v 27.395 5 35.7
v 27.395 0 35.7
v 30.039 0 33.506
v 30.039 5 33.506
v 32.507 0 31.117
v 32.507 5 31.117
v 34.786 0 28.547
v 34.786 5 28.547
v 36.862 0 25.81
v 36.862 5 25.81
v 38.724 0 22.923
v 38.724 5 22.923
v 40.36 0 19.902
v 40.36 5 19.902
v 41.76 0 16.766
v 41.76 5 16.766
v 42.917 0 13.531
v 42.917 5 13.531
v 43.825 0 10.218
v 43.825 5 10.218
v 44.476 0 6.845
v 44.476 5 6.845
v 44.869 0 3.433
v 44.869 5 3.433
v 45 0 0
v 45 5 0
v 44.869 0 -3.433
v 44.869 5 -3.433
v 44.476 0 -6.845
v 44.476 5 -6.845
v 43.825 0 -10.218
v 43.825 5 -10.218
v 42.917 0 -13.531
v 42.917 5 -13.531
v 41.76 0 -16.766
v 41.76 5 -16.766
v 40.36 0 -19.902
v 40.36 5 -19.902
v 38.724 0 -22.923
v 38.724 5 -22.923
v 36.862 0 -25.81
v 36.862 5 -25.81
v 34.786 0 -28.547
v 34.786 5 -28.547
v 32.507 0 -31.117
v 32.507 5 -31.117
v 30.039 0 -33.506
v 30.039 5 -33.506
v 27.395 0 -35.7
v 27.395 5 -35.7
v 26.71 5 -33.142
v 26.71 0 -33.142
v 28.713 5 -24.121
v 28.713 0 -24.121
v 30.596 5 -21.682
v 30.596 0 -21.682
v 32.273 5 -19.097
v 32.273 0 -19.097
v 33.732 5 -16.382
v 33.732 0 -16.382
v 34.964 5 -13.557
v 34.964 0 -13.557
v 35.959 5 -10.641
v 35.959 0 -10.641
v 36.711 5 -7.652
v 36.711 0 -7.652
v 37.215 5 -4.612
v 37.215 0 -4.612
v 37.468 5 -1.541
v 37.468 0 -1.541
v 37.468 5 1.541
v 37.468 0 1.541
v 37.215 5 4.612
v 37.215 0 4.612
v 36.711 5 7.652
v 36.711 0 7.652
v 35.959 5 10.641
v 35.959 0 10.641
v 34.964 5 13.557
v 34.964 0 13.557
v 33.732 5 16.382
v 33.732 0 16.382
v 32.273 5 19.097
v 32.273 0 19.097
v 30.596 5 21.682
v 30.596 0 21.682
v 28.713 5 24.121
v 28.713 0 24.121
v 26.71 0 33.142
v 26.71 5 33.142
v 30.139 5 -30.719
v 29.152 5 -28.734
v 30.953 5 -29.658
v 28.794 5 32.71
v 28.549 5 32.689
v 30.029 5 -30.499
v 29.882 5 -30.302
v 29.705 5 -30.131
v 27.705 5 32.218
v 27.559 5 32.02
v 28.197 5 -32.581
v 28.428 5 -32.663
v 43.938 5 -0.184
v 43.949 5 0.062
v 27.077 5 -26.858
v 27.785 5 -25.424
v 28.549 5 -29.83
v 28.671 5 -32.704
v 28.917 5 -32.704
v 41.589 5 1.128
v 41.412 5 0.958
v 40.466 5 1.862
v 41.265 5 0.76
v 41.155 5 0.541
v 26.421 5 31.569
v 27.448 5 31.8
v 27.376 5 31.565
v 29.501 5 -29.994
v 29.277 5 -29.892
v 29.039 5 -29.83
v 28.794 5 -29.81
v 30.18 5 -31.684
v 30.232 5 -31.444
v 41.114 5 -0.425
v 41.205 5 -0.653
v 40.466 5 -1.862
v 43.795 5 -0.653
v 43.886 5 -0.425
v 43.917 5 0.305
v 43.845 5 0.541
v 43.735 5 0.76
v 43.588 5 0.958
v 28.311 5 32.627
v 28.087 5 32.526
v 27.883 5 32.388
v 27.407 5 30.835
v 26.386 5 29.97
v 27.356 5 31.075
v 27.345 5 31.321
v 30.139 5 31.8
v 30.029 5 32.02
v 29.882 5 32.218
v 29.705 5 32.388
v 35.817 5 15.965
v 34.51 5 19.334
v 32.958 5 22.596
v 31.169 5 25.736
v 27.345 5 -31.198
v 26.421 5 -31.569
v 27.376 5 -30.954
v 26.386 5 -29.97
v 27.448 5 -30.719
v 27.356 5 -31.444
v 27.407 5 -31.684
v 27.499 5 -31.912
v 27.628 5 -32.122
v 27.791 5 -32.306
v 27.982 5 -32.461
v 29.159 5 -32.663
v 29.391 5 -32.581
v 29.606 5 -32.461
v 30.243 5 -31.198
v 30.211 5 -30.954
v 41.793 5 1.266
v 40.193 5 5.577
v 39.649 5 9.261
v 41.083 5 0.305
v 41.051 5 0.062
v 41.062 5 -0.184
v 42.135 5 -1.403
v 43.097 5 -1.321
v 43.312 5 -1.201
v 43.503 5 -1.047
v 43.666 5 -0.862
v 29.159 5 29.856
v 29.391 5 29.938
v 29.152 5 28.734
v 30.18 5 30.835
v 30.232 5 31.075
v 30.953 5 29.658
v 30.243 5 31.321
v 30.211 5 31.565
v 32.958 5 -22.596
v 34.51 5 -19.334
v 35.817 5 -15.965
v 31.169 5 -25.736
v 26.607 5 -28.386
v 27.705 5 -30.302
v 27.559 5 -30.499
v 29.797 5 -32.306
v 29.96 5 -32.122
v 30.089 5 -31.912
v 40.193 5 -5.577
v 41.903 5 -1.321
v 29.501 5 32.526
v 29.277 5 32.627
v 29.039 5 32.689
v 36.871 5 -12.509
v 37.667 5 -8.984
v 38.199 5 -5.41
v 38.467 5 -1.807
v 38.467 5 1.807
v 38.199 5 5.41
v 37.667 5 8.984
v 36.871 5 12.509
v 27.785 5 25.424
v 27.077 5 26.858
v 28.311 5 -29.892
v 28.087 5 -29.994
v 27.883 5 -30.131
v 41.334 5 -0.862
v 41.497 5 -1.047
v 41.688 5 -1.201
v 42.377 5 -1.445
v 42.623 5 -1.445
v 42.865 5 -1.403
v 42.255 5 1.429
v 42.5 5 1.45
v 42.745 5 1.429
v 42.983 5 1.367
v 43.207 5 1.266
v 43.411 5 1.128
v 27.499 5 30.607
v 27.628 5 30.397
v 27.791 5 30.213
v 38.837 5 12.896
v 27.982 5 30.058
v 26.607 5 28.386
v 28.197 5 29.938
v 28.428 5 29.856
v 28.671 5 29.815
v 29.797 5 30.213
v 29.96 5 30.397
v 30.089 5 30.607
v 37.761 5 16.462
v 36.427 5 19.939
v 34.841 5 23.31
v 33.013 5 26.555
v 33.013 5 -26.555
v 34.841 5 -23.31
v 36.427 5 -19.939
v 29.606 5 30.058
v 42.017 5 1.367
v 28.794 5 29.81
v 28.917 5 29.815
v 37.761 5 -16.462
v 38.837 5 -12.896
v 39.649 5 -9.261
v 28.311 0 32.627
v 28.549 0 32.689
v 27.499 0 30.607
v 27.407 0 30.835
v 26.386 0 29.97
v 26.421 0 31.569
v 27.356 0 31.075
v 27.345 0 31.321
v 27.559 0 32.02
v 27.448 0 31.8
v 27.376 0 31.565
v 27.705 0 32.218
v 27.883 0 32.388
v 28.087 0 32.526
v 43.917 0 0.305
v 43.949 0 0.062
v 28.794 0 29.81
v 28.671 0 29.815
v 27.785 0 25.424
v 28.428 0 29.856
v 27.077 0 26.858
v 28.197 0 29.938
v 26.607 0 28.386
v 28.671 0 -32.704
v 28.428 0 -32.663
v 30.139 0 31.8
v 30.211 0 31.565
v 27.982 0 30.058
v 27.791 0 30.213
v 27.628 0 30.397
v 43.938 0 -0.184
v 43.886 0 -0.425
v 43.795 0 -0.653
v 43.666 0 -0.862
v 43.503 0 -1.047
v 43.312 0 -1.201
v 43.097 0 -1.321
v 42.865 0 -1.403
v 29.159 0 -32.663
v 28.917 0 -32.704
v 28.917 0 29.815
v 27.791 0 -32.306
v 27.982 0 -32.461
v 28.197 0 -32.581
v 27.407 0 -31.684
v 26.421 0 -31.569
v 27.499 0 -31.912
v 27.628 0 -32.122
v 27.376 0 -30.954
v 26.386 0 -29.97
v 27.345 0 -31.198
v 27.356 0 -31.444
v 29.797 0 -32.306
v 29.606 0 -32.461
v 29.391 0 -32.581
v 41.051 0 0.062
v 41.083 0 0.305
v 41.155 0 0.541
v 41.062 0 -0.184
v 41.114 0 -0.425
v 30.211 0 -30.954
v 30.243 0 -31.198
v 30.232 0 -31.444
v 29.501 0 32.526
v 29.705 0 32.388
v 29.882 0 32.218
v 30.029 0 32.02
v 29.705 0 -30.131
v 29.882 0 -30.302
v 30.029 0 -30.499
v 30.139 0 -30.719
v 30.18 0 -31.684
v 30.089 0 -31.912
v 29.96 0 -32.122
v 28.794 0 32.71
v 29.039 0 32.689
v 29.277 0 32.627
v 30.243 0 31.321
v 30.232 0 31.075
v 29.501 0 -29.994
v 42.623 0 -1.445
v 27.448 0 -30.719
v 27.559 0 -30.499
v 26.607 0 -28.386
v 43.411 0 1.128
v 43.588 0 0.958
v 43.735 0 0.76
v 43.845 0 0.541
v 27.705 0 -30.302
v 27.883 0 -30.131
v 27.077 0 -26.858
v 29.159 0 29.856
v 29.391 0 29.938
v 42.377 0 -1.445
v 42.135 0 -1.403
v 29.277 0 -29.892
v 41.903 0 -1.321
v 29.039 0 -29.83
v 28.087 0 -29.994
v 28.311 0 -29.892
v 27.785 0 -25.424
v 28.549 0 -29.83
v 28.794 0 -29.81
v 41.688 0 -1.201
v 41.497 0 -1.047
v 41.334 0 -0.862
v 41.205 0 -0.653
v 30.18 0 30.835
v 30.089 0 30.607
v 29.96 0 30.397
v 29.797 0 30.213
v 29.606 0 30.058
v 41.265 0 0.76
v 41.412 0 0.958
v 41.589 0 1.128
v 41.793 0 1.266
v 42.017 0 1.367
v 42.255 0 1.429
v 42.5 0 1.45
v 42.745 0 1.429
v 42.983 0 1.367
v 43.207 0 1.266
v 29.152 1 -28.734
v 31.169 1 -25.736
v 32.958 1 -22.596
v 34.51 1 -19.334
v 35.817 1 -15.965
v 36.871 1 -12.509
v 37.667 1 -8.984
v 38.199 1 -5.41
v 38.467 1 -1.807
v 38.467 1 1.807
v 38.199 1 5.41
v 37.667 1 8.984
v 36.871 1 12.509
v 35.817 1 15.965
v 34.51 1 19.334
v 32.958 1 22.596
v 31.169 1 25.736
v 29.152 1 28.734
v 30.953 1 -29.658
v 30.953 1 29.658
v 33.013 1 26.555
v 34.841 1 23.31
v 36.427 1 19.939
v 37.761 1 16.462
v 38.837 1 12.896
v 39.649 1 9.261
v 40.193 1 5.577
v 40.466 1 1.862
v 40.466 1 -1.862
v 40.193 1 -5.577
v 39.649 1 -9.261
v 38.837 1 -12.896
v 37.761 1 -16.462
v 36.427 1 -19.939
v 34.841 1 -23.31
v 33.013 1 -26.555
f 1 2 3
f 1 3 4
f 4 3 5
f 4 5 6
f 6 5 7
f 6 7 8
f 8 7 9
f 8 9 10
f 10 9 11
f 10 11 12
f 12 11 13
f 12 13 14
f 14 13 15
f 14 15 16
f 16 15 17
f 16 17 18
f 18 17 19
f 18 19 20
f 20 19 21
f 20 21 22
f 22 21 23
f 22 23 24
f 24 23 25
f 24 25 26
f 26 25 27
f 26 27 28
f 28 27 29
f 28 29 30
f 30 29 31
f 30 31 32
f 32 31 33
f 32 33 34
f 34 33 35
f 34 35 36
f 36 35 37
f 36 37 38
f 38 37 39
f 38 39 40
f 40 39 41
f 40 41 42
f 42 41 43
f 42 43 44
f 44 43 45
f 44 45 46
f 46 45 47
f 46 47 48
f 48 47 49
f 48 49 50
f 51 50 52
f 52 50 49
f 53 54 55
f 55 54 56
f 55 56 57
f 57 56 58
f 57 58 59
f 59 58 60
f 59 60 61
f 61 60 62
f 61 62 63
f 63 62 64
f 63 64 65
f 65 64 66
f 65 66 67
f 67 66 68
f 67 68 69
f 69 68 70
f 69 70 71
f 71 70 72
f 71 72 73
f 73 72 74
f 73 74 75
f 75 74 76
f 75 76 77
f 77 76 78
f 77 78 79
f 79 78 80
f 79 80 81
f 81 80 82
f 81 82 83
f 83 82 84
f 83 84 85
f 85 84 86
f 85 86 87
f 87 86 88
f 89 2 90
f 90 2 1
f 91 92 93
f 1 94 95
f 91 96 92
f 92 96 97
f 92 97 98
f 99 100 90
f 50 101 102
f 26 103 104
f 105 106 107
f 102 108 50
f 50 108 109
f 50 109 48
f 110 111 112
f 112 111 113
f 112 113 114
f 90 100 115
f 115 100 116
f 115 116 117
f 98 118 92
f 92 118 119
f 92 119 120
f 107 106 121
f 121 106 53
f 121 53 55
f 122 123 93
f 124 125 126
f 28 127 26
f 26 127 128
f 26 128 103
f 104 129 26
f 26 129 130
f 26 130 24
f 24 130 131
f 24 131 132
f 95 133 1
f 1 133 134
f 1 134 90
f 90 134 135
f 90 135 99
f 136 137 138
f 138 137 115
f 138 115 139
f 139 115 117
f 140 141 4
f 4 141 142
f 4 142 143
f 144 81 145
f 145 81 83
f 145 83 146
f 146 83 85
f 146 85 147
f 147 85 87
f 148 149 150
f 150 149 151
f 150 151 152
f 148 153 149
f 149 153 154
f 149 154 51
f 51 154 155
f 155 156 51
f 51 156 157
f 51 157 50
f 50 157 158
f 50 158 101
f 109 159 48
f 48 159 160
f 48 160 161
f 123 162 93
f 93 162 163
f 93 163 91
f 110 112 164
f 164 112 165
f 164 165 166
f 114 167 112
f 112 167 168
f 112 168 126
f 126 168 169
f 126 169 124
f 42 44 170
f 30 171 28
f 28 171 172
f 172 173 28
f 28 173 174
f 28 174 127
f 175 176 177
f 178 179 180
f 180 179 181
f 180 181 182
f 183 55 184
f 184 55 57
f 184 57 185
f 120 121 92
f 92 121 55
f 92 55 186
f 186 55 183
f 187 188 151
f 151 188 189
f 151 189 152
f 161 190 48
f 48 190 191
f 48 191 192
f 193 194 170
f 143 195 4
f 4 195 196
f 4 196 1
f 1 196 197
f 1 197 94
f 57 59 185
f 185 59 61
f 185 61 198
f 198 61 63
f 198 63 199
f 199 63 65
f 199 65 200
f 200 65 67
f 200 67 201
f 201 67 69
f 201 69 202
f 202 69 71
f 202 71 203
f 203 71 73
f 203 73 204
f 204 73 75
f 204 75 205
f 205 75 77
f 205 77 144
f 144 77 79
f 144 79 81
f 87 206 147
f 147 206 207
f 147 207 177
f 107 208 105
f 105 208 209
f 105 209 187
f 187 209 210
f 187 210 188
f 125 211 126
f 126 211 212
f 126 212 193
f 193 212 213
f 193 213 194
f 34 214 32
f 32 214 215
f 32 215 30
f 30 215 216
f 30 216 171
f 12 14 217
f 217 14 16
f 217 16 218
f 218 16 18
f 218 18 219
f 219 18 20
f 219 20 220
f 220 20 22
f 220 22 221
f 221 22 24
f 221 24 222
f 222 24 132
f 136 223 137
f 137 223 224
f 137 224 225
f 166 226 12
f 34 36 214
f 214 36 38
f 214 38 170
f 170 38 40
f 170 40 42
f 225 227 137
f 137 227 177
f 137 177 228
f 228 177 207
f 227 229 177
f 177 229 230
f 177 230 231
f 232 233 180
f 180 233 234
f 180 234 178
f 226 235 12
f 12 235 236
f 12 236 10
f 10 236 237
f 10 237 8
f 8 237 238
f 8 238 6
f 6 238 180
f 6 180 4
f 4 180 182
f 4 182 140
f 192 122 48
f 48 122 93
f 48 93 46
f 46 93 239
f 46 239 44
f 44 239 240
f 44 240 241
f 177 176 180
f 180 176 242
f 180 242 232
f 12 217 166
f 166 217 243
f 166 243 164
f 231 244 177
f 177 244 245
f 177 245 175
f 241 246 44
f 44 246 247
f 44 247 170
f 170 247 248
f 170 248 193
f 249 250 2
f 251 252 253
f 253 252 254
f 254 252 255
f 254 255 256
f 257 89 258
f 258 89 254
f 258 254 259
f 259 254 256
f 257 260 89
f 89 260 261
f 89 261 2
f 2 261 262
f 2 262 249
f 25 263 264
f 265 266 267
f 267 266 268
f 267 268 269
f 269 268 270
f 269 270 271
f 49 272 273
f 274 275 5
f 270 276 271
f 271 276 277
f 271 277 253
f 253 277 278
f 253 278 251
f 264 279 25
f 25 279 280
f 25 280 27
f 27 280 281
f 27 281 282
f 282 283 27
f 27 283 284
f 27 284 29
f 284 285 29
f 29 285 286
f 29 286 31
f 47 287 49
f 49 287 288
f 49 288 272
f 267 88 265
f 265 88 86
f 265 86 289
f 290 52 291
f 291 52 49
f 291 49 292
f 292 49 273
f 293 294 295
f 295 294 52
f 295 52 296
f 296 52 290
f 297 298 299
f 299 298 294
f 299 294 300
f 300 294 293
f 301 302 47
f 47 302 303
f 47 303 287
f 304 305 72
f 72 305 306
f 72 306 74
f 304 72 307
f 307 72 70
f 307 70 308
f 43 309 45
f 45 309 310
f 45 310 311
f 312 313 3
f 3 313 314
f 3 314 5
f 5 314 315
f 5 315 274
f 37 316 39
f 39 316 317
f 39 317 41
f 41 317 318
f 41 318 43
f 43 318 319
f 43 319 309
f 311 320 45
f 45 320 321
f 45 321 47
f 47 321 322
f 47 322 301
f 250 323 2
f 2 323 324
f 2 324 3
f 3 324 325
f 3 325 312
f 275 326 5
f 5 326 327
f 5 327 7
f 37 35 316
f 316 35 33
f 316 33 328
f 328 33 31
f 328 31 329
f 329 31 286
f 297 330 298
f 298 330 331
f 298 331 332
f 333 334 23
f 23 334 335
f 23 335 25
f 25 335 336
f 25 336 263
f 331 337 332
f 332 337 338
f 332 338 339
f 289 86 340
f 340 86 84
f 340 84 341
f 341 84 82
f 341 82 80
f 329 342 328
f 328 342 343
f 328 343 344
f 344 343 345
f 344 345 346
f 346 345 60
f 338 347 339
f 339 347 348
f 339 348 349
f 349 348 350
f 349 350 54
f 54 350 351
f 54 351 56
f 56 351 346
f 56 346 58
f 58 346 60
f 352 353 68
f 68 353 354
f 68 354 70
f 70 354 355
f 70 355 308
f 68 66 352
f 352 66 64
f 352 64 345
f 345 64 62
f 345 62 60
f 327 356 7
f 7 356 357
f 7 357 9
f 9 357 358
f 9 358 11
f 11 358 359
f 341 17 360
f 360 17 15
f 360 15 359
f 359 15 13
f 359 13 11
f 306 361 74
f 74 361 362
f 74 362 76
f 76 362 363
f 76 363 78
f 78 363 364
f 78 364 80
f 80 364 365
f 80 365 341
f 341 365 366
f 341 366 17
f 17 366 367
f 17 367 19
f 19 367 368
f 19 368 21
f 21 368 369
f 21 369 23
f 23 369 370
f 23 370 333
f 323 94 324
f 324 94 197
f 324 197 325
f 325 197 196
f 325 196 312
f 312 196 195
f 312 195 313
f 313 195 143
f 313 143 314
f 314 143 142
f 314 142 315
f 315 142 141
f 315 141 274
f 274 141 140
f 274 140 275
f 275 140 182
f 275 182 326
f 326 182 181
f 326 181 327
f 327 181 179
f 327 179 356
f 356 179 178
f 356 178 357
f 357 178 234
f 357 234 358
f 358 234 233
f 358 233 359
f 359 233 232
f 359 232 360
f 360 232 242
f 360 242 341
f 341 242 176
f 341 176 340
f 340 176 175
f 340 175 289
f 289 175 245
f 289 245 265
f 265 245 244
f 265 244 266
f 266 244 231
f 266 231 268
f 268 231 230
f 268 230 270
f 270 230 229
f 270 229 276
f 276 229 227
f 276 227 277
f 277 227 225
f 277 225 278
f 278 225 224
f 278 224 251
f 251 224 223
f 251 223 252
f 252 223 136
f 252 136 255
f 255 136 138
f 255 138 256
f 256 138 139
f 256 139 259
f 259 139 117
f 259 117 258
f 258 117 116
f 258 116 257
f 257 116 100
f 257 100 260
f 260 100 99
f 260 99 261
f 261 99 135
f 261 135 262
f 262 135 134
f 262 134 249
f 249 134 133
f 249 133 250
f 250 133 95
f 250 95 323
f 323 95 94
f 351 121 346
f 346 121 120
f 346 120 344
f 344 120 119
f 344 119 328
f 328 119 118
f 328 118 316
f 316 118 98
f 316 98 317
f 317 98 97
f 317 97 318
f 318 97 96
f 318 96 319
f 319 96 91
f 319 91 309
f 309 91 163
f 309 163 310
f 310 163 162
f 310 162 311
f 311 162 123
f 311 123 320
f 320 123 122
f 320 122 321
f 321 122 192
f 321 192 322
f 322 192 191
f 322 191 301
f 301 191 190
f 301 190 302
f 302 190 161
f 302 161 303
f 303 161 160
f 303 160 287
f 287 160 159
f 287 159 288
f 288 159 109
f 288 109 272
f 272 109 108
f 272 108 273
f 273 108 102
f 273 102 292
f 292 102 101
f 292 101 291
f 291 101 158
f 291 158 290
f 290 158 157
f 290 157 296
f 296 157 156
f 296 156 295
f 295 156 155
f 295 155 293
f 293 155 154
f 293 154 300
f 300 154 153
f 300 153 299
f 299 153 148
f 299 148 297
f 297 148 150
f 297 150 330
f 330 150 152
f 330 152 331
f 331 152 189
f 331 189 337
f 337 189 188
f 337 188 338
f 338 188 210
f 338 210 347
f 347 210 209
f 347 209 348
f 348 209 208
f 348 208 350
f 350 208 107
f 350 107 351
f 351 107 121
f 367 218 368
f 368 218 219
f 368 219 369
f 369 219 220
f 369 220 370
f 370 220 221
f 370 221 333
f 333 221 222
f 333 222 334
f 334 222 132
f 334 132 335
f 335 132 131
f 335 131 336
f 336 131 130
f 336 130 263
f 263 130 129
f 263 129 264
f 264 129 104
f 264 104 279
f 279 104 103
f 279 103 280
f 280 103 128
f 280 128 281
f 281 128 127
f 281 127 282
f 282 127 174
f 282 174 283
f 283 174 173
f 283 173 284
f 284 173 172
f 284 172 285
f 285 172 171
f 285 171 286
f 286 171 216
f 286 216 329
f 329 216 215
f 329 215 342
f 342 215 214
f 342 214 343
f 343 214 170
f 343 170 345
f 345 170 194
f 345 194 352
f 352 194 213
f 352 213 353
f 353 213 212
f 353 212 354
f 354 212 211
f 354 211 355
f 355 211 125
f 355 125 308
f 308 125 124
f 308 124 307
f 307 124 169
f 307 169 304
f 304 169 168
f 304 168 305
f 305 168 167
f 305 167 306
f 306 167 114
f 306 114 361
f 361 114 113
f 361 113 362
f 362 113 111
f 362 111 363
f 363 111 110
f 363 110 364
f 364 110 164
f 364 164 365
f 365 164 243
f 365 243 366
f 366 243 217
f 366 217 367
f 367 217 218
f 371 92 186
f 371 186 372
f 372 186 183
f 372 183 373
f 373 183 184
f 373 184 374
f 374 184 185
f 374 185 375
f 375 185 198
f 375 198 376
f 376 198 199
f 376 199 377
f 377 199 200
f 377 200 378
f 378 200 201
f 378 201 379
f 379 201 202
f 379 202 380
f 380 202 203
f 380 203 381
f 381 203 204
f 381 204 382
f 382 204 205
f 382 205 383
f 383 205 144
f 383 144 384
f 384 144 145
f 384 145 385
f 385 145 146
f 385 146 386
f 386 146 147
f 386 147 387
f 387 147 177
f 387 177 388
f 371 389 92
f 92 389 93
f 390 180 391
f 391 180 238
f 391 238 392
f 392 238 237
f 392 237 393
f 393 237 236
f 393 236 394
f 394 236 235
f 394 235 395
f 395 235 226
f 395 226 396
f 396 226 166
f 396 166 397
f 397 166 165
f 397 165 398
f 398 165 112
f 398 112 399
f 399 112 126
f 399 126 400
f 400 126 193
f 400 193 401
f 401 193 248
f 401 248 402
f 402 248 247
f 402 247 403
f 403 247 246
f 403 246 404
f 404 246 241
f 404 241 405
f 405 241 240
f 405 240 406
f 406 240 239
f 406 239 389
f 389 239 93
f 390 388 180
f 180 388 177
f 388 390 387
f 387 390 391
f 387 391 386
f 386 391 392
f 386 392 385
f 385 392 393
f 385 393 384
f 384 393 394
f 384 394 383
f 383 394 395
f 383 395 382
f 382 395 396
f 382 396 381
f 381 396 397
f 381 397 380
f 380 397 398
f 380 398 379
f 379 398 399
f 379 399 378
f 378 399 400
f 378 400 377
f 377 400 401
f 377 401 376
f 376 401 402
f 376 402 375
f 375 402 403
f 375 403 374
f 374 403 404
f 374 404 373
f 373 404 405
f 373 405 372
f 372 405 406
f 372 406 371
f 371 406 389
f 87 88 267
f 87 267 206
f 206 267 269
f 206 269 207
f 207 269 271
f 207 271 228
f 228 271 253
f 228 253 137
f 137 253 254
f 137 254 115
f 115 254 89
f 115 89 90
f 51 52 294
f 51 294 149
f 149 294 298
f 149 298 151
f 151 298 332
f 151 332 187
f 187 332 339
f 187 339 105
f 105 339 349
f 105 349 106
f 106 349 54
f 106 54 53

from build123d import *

# Parameters (mm, degrees)
EXTRUDE_1_DEPTH     = 5
SKETCH_2_R          = 1.45
CUT_EXTRUDE_1_DEPTH = 5
CUT_EXTRUDE_2_DEPTH = 4
FILLET_1_R          = 10


with BuildPart() as part:
    # Эскиз1 → Бобышка-Вытянуть1 (new body)
    with BuildSketch(Plane(origin=(0, 0, 0), x_dir=(1, 0, 0), z_dir=(0, 1, 0))):
        with BuildLine():
            Line((25.256912811, 27.718916921), (27.395437576, 35.7))
            ThreePointArc((27.395437576, 35.7), (45, 0), (27.395437576, -35.7))
            Line((27.395437576, -35.7), (25.256912811, -27.718916921))
            ThreePointArc((25.256912811, -27.718916921), (37.5, 0), (25.256912811, 27.718916921))
        make_face()
    extrude(amount=EXTRUDE_1_DEPTH)

    # Эскиз2 → Вырез-Вытянуть1 (cut)
    with BuildSketch(Plane(origin=(0, 5, 0), x_dir=(1, 0, 0), z_dir=(0, 1, 0))):
        with Locations(Location((42.5, 0, 0), (0, 0, 270))):
            Circle(SKETCH_2_R)
        with Locations(Location((28.793836633, 31.259638065, 0), (0, 0, 270))):
            Circle(SKETCH_2_R)
        with Locations(Location((28.793836633, -31.259638065, 0), (0, 0, 90))):
            Circle(SKETCH_2_R)
    extrude(amount=-CUT_EXTRUDE_1_DEPTH, mode=Mode.SUBTRACT)

    # Эскиз3 → Вырез-Вытянуть2 (cut)
    with BuildSketch(Plane(origin=(0, 5, 0), x_dir=(1, 0, 0), z_dir=(0, 1, 0))):
        with BuildLine():
            Line((29.152397919, 28.734107513), (30.952735107, 29.657502375))
            ThreePointArc((30.952735107, 29.657502375), (40.5, -1.12e-07), (30.952736281, -29.657502977))
            Line((30.952736281, -29.657502977), (29.152399104, -28.734108121))
            ThreePointArc((29.152399104, -28.734108121), (38.5, -1.11e-07), (29.152397919, 28.734107513))
        make_face()
    extrude(amount=-CUT_EXTRUDE_2_DEPTH, mode=Mode.SUBTRACT)

    # Скругление1
    fillet_1_edges = [part.edges().sort_by_distance(p)[0] for p in [
        (25.256912811, 2.5, 27.718916921),
        (25.256912811, 2.5, -27.718916921),
    ]]
    fillet(fillet_1_edges, radius=FILLET_1_R)


solid = part.part
